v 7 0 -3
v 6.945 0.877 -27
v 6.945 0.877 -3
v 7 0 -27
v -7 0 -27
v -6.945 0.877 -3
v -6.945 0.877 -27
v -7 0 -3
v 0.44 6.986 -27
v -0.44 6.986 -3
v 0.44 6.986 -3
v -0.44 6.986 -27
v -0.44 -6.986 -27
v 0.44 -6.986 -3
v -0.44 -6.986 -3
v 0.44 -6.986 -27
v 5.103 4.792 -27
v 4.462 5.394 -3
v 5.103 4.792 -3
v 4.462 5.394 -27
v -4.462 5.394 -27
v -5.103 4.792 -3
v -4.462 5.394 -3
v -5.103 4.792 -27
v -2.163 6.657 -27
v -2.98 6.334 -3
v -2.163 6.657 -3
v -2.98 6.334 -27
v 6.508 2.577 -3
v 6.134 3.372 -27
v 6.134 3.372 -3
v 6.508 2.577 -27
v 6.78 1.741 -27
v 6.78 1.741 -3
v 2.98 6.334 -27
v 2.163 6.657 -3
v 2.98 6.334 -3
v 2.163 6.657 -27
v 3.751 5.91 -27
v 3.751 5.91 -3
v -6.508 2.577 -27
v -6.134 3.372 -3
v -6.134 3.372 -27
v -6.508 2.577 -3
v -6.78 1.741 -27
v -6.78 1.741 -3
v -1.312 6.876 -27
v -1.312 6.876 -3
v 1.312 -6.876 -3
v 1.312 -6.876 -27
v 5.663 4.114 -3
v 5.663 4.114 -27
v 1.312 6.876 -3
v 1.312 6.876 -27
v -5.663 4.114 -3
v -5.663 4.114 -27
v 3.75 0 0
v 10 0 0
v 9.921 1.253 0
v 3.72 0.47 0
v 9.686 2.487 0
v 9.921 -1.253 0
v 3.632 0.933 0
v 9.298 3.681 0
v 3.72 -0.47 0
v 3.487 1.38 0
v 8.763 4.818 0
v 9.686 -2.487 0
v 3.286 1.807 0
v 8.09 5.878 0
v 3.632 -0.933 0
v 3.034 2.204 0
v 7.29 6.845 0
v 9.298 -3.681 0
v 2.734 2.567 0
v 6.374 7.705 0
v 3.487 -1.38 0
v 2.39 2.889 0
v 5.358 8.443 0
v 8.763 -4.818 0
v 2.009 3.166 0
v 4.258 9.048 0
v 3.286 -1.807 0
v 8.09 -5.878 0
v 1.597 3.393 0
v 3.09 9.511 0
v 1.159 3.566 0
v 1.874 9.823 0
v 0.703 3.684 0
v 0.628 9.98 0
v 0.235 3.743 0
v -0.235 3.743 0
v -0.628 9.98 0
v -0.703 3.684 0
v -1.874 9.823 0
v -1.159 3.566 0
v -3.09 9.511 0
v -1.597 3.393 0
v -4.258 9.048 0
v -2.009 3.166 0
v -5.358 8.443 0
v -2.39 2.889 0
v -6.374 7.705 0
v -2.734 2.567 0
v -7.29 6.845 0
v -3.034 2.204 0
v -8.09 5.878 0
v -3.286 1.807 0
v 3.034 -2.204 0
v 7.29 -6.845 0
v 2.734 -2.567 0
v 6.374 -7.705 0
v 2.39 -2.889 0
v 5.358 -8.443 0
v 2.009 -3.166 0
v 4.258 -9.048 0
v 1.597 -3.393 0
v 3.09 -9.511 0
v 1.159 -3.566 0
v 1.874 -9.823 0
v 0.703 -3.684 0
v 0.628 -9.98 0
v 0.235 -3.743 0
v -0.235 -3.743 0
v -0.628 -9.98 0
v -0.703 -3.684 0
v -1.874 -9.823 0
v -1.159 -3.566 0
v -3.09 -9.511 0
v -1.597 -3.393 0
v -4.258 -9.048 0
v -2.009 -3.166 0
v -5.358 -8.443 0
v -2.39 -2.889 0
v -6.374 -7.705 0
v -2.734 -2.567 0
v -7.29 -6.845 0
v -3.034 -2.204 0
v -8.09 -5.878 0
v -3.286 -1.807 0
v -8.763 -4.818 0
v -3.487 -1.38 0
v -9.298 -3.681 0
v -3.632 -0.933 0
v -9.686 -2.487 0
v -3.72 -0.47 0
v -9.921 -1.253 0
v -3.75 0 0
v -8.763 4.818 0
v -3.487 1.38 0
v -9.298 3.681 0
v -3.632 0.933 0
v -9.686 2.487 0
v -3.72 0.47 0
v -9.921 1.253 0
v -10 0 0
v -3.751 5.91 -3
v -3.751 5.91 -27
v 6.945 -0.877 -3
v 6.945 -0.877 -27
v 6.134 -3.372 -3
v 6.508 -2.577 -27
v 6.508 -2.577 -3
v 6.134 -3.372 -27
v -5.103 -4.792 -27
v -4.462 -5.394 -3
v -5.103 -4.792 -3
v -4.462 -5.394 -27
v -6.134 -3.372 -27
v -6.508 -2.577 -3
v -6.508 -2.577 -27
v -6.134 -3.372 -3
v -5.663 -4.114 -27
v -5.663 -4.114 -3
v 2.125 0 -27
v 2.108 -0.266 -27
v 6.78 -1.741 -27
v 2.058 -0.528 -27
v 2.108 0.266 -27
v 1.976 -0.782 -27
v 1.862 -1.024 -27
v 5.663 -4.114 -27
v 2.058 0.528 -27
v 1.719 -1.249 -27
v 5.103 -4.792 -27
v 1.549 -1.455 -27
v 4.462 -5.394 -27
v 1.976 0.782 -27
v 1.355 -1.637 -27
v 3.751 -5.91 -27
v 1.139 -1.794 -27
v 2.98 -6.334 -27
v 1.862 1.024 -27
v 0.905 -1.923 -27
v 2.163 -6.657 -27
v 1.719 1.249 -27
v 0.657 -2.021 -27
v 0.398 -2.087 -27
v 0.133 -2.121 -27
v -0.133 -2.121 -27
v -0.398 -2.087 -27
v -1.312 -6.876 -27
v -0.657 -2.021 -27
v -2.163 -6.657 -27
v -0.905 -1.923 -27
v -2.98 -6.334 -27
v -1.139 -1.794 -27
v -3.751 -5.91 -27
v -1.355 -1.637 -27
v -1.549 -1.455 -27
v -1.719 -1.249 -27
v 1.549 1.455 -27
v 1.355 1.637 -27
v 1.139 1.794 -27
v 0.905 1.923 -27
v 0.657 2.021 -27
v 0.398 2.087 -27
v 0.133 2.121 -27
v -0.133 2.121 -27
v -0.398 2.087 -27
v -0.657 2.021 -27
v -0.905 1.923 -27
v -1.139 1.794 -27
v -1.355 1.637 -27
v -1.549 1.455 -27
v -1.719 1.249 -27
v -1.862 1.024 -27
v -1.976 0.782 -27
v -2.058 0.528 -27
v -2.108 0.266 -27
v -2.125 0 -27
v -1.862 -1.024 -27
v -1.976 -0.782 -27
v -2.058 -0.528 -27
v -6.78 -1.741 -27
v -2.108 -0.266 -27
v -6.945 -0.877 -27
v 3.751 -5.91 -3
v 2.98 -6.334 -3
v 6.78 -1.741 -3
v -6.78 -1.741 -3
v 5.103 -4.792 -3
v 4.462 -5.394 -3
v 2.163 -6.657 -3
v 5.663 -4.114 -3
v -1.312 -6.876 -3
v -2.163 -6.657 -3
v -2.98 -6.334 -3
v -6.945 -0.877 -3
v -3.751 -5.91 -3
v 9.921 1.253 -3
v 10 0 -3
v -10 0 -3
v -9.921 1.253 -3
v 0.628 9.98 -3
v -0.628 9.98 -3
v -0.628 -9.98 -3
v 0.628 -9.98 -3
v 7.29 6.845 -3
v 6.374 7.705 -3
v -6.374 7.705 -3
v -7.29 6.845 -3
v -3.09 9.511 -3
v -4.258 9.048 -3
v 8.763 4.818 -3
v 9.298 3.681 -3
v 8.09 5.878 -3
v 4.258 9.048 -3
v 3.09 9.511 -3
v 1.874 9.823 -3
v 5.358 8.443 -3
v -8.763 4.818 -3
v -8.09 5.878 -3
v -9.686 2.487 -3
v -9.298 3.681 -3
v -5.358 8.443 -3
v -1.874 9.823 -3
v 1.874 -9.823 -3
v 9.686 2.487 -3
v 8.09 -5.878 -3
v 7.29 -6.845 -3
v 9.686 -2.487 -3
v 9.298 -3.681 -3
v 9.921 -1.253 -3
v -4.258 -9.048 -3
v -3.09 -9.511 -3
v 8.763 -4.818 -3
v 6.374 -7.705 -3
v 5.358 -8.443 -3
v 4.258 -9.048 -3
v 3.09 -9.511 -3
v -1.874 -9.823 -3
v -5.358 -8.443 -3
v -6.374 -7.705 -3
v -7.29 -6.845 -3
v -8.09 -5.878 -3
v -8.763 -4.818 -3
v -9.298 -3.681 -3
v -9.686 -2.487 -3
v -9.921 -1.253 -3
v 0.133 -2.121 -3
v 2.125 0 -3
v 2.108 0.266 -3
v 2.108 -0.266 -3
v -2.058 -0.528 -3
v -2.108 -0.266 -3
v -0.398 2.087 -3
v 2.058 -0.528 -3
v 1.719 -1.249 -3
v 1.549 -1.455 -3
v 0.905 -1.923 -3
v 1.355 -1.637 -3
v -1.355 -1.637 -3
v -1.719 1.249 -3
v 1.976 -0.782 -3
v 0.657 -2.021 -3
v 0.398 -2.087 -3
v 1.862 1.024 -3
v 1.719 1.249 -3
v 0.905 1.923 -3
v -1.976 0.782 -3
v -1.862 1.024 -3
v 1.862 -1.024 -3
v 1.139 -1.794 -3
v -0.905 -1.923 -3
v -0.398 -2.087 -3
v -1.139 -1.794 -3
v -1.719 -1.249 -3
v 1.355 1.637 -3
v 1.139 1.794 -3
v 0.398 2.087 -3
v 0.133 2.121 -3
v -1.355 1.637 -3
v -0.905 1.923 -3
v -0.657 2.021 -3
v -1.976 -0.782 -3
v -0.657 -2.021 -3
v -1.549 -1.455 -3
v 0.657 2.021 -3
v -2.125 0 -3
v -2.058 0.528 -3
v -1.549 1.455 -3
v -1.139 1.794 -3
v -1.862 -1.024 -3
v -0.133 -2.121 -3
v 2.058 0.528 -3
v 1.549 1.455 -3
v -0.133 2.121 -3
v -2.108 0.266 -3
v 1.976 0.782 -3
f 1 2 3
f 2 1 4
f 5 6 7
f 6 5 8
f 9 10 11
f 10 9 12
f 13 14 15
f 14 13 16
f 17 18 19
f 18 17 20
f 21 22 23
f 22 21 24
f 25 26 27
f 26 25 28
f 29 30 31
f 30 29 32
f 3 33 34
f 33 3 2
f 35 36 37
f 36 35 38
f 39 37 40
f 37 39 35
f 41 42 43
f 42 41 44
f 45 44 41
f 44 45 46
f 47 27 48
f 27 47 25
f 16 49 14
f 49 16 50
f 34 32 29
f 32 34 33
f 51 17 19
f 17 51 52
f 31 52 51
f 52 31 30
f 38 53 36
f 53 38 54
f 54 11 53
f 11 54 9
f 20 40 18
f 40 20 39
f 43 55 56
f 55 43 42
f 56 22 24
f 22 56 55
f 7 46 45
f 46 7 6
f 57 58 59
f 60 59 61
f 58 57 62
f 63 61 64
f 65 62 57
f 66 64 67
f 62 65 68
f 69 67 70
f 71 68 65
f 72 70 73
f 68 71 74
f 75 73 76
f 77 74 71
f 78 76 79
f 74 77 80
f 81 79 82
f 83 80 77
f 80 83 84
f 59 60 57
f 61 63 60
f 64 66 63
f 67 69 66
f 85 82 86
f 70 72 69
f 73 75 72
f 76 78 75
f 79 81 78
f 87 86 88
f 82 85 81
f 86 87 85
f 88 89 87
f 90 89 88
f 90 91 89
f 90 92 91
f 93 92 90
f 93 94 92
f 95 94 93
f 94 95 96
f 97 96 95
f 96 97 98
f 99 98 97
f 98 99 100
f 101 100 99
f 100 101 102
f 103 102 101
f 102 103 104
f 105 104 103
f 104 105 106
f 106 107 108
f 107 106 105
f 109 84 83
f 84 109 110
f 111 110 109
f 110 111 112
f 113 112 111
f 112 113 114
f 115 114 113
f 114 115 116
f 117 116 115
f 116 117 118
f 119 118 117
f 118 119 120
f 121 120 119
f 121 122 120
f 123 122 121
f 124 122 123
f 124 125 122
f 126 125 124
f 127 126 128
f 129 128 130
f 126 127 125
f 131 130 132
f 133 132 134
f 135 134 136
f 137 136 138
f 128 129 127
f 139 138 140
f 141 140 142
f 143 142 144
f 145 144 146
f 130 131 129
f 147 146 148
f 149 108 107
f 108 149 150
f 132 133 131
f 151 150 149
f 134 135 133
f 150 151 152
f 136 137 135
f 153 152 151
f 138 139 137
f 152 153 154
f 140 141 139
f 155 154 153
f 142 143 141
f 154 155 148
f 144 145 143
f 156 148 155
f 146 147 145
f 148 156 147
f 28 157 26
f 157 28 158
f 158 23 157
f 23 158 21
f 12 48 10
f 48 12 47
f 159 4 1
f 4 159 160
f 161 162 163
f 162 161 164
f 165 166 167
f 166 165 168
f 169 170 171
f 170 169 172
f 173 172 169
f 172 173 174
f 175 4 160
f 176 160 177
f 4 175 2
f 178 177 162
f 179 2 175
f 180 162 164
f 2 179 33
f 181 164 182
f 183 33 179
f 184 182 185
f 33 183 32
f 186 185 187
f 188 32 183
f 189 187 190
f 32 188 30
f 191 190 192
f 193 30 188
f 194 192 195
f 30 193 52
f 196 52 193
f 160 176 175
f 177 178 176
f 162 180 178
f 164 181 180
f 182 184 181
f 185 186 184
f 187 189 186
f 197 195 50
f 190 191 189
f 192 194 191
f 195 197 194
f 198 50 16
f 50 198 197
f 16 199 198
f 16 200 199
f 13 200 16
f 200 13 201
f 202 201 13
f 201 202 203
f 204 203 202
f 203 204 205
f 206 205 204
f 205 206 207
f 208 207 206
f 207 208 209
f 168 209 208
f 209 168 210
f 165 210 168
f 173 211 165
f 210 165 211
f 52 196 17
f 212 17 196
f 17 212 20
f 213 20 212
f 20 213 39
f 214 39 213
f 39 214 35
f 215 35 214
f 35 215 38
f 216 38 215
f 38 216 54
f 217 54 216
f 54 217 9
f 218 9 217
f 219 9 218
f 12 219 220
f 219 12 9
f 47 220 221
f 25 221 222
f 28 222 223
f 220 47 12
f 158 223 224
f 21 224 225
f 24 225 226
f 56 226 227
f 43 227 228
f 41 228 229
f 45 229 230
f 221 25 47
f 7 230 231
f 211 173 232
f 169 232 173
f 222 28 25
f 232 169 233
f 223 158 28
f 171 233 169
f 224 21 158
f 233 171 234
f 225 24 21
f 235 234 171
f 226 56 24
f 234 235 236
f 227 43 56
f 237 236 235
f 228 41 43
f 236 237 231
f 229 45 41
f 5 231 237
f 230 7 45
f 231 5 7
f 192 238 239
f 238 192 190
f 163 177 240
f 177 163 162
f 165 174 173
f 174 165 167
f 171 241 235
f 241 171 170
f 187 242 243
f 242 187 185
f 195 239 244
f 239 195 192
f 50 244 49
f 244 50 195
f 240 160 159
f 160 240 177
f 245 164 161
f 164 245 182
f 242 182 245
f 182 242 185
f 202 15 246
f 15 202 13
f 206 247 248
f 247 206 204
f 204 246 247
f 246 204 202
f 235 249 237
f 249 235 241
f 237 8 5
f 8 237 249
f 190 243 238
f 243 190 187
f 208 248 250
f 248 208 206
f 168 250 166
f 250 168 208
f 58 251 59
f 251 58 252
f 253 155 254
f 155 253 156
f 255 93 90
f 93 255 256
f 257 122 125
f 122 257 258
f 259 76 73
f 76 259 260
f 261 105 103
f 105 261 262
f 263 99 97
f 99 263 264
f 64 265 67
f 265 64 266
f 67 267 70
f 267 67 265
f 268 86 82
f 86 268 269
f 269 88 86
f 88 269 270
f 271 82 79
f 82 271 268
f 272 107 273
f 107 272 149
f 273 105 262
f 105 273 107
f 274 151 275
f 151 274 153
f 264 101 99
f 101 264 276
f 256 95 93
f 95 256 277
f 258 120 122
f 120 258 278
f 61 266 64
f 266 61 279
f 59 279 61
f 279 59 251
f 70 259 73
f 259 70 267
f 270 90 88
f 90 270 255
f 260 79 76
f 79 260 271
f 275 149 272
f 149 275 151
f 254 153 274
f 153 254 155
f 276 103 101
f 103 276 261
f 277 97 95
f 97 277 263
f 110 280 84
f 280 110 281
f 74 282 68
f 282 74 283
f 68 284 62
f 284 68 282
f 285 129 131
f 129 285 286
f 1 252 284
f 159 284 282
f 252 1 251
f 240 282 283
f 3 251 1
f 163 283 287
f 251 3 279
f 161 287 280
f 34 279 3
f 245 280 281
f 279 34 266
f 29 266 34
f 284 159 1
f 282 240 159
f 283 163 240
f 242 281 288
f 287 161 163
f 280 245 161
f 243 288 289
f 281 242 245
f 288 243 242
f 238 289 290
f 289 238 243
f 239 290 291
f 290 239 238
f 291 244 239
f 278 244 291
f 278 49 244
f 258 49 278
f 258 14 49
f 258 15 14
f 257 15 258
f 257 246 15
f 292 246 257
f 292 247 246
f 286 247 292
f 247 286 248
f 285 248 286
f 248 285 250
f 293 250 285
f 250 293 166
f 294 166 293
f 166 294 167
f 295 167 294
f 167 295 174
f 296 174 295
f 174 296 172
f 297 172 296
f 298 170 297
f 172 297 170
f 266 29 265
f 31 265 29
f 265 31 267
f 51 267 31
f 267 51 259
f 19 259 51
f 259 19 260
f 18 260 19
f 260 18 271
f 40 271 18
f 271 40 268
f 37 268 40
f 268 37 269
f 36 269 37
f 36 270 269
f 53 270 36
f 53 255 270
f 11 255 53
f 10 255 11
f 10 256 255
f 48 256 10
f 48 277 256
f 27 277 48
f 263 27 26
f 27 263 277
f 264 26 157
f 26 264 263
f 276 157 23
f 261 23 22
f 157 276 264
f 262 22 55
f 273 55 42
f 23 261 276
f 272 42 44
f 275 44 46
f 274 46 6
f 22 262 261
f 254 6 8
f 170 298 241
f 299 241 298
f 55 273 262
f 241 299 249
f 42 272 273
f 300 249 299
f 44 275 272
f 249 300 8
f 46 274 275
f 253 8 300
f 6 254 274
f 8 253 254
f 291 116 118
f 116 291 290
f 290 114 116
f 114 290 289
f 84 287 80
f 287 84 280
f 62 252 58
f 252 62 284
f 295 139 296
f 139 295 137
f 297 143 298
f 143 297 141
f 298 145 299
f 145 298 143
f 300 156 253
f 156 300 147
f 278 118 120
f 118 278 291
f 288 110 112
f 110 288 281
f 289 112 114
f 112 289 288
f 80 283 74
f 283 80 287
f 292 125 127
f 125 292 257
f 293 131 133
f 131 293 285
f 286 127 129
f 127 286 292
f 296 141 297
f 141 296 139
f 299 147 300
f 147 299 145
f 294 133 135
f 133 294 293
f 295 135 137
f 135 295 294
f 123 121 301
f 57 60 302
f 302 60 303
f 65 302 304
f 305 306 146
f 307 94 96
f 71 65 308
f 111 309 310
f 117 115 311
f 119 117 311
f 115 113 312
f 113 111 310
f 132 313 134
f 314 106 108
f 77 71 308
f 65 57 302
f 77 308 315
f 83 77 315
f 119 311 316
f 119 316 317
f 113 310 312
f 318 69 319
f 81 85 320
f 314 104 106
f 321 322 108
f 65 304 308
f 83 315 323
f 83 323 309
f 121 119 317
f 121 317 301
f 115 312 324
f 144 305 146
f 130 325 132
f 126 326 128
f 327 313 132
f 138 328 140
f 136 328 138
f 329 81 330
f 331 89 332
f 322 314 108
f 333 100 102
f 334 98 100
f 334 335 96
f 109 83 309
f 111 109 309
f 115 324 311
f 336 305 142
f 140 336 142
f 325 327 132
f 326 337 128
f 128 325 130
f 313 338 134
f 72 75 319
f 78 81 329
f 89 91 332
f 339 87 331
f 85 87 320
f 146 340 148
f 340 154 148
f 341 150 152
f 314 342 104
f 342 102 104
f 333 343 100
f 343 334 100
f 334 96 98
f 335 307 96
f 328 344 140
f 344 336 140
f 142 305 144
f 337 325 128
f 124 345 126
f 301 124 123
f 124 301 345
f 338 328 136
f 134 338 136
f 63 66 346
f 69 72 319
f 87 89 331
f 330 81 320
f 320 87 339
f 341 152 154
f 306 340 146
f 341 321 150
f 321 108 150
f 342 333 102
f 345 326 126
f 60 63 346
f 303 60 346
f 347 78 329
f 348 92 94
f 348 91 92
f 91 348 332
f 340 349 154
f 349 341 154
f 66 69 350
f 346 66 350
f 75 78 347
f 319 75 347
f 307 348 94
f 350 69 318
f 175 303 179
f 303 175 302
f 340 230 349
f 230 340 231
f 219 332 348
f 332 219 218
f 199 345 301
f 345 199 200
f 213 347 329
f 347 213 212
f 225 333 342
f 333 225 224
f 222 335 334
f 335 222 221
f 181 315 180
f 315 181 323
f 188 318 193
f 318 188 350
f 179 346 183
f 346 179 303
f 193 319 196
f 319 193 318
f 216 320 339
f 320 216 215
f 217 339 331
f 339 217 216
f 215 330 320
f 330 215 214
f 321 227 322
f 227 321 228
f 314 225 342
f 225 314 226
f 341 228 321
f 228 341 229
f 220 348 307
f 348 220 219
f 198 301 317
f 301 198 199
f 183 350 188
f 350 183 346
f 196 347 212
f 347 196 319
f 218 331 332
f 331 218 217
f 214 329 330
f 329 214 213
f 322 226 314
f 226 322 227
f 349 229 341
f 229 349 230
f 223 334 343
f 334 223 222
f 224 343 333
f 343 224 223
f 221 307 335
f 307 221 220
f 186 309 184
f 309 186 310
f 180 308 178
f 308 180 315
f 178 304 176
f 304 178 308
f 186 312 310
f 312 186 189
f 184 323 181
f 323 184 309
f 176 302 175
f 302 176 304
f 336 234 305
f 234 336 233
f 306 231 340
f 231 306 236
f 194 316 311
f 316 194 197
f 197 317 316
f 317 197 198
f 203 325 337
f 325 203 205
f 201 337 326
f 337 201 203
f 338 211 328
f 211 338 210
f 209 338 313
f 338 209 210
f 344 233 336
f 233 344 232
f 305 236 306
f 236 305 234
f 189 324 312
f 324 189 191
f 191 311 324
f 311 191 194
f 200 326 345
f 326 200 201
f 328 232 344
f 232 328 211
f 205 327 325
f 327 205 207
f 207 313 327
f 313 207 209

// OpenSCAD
$fn = 50;


difference() {
	union() {
		translate(v = [0, 0, -27.0000000000]) {
			cylinder(h = 27, r = 7.0000000000);
		}
		translate(v = [0, 0, -3.0000000000]) {
			cylinder(h = 3, r = 10.0000000000);
		}
	}
	union() {
		translate(v = [0, 0, 0]) {
			rotate(a = [0, 0, 0]) {
				difference() {
					union() {
						#translate(v = [0, 0, -27.0000000000]) {
							cylinder(h = 27, r = 2.0000000000);
						}
						#translate(v = [0, 0, -3]) {
							cylinder(h = 3, r1 = 2.1250000000, r2 = 3.7500000000);
						}
						#translate(v = [0, 0, -27.0000000000]) {
							cylinder(h = 27, r = 2.1250000000);
						}
						#translate(v = [0, 0, -27.0000000000]) {
							cylinder(h = 27, r = 2.0000000000);
						}
					}
					union();
				}
			}
		}
	}
}
